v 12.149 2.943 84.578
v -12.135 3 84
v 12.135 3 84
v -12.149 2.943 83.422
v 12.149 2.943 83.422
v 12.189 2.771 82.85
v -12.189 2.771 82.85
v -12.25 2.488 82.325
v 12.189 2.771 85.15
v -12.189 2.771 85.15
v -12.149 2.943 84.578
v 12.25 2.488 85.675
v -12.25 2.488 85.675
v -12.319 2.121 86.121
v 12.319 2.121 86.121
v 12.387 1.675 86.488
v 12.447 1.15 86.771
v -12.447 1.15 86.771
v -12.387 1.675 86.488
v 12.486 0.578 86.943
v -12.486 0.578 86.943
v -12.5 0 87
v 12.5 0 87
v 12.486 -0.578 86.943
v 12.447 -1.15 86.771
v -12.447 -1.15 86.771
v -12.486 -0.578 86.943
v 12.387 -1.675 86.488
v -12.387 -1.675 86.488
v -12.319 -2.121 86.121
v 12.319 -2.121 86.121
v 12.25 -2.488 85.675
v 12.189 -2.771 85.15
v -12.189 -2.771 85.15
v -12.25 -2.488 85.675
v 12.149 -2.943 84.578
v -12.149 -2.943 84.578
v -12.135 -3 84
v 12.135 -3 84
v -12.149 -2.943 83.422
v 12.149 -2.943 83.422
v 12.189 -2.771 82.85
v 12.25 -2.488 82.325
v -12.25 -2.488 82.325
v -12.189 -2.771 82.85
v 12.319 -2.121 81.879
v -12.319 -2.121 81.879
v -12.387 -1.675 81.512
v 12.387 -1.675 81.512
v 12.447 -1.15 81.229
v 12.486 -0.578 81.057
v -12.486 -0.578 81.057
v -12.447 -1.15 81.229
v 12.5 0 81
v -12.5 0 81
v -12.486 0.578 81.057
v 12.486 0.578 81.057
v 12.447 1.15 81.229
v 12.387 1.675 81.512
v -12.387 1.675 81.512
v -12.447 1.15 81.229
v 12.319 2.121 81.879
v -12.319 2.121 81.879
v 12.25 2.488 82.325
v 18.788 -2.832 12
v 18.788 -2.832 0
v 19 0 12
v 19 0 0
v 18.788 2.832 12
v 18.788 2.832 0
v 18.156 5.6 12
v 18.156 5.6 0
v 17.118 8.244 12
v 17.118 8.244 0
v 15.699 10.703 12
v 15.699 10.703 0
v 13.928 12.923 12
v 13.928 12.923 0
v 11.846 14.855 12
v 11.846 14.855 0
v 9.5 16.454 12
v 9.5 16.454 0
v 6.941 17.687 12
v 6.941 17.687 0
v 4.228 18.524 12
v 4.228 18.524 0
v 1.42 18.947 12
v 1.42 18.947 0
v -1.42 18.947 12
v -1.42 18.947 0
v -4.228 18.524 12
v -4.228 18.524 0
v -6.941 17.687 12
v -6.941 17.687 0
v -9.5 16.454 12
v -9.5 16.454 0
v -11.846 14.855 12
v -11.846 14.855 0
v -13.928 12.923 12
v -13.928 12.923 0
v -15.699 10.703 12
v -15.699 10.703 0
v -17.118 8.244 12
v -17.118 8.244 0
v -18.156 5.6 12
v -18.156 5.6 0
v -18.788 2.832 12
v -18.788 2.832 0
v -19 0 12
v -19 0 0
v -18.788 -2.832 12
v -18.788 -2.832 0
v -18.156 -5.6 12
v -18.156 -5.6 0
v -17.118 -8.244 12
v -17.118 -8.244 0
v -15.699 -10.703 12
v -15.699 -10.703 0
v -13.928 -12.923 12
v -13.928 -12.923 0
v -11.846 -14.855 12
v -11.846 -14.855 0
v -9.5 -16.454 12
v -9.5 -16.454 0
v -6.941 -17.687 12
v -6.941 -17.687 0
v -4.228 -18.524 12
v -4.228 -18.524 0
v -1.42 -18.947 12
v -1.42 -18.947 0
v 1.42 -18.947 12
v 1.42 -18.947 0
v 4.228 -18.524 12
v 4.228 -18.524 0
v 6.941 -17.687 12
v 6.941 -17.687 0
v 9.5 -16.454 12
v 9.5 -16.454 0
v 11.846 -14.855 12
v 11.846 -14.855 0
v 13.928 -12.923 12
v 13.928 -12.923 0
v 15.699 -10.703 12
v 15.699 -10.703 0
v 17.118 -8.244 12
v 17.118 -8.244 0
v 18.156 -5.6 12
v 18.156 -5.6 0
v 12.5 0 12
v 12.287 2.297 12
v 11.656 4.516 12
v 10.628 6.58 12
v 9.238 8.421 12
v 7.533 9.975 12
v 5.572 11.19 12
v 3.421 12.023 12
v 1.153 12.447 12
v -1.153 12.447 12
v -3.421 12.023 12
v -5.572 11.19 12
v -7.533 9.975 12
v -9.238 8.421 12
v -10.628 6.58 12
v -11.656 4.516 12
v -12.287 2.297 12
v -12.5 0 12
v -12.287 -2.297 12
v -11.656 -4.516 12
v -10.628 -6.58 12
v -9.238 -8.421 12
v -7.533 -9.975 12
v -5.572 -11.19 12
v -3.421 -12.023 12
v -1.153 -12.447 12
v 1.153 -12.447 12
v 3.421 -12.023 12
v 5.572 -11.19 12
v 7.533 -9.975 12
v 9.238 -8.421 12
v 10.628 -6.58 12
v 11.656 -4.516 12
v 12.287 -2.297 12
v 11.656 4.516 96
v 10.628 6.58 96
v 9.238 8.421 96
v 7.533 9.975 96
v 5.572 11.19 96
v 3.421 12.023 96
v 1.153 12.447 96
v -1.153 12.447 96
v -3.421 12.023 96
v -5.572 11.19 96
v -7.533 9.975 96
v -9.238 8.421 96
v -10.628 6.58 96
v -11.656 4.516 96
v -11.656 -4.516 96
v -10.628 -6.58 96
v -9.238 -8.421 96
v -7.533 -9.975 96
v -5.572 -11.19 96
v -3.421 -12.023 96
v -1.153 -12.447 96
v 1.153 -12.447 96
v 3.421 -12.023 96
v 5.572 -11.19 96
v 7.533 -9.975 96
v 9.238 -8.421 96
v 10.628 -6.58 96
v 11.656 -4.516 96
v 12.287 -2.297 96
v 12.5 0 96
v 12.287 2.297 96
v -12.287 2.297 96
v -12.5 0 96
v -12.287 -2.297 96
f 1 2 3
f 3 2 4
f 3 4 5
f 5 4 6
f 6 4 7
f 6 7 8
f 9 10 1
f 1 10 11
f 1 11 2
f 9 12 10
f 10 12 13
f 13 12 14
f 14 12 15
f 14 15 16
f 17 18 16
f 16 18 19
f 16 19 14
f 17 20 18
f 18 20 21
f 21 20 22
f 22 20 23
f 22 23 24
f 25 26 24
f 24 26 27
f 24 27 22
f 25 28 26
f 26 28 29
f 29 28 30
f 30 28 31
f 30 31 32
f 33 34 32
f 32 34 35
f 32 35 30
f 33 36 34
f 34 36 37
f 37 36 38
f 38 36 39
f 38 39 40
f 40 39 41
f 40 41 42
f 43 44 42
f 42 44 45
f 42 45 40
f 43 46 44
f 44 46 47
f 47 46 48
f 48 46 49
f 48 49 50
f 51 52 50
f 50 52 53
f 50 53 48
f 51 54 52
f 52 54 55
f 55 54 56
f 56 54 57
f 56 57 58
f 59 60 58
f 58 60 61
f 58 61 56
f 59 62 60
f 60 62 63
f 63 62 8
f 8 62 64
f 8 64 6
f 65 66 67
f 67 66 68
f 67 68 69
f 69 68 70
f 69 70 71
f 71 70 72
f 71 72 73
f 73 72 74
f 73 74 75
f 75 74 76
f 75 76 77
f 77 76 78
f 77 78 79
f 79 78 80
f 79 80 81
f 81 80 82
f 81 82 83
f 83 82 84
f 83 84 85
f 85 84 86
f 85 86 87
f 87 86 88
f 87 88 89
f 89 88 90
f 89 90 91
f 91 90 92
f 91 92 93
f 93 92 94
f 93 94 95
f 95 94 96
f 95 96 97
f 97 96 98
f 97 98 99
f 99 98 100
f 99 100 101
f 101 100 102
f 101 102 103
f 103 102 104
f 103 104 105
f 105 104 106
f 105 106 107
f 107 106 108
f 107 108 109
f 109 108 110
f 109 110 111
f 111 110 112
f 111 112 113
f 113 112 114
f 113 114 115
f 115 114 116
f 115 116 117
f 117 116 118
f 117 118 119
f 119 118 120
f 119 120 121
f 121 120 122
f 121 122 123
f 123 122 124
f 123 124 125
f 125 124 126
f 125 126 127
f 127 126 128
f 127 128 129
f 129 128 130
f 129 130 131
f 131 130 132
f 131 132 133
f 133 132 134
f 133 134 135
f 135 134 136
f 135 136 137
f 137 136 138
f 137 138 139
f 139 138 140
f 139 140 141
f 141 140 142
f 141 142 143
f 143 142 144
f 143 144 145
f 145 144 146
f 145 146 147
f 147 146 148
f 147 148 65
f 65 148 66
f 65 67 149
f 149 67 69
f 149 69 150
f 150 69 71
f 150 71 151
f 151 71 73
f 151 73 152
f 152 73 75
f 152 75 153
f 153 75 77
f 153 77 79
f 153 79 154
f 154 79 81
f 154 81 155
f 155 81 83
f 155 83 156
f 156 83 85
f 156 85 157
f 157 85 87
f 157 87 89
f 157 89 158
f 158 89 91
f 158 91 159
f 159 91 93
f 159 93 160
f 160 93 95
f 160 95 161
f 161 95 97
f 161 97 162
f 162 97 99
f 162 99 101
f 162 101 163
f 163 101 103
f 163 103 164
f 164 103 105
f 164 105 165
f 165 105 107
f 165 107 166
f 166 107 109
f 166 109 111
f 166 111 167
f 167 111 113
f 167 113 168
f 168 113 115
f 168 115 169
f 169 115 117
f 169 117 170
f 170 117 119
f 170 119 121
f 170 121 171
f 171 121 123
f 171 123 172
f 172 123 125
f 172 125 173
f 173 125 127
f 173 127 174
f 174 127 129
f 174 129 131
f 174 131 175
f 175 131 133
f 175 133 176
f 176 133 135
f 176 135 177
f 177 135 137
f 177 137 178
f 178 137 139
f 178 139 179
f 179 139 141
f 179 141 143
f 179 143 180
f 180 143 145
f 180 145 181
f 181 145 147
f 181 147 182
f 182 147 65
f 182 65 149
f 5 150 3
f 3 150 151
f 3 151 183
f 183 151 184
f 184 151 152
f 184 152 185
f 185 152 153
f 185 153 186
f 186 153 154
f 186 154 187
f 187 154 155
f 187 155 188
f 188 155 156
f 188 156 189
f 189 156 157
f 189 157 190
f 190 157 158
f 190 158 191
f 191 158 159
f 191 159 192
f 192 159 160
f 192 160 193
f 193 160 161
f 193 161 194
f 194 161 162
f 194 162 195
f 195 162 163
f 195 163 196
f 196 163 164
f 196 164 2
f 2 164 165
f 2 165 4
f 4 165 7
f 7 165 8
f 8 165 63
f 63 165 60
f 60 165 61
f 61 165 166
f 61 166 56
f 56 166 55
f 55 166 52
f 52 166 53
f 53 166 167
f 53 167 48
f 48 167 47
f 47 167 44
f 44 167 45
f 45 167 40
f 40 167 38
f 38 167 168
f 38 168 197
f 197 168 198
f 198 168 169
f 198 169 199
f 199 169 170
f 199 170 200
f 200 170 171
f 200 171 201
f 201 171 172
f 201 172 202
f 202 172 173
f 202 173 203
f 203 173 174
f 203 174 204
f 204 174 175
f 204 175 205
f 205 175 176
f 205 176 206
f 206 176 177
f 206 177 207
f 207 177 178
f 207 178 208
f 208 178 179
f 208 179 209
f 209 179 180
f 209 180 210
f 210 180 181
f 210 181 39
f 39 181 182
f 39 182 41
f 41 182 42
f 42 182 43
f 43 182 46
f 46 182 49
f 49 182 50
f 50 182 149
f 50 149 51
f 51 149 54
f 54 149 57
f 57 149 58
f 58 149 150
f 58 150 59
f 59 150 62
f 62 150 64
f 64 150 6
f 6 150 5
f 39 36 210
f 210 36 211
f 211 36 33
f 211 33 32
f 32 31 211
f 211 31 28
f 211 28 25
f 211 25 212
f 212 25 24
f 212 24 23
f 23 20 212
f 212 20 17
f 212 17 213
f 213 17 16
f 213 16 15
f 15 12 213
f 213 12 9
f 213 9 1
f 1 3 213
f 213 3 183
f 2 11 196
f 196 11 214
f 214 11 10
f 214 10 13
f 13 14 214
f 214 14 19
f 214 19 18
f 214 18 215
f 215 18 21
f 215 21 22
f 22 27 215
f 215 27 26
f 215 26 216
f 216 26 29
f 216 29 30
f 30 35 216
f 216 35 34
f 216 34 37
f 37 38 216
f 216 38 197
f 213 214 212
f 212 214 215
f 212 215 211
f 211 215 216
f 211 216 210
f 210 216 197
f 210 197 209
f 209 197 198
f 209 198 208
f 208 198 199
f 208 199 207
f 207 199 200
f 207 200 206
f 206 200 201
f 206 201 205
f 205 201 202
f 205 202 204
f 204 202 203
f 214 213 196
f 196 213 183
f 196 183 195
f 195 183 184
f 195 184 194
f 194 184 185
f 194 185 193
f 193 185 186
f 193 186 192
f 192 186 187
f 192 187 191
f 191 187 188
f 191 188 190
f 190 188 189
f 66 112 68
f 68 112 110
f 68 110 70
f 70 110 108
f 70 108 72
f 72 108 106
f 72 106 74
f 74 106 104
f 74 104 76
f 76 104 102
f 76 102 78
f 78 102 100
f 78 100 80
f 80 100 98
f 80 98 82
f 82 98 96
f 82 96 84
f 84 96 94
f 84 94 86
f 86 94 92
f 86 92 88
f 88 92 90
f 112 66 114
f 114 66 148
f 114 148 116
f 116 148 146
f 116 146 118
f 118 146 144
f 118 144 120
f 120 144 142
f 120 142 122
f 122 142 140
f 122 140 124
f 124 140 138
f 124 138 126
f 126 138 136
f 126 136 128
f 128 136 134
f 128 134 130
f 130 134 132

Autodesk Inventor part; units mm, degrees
ref_plane "YZ Plane" through (0, 0, 0) normal (1, 0, 0) x (0, 1, 0)
ref_plane "XZ Plane" through (0, 0, 0) normal (0, 1, 0) x (-1, 0, 0)
ref_plane "XY Plane" through (0, 0, 0) normal (0, 0, 1) x (1, 0, 0)
sketch "Sketch1" plane through (0, 0, 0) normal (0, 0, 1) x (1, 0, 0)
  circle A0 centre (0, 0) radius 19
  circle A1 centre (0, 0) radius 12.5
  dimension "d0" = 38
  dimension "d1" = 25
extrude "Extrusion1" add sketch "Sketch1" along normal blind 96 contours A1
extrude "Extrusion2" add sketch "Sketch1" along normal blind 12
sketch "Sketch2" plane through (0, 0, 0) normal (1, 0, 0) x (0, 1, 0)
  circle A0 centre (0, 84) radius 3
  line L0 (12.5, 96) -> (-12.5, 96) projected
  point P0 (0, 0)
  dimension "d6" = 6
  dimension "d7" = 12
extrude "Extrusion3" cut sketch "Sketch2" along normal through all both and the other way through all
properties part number "pin" material "Steel, Alloy"
